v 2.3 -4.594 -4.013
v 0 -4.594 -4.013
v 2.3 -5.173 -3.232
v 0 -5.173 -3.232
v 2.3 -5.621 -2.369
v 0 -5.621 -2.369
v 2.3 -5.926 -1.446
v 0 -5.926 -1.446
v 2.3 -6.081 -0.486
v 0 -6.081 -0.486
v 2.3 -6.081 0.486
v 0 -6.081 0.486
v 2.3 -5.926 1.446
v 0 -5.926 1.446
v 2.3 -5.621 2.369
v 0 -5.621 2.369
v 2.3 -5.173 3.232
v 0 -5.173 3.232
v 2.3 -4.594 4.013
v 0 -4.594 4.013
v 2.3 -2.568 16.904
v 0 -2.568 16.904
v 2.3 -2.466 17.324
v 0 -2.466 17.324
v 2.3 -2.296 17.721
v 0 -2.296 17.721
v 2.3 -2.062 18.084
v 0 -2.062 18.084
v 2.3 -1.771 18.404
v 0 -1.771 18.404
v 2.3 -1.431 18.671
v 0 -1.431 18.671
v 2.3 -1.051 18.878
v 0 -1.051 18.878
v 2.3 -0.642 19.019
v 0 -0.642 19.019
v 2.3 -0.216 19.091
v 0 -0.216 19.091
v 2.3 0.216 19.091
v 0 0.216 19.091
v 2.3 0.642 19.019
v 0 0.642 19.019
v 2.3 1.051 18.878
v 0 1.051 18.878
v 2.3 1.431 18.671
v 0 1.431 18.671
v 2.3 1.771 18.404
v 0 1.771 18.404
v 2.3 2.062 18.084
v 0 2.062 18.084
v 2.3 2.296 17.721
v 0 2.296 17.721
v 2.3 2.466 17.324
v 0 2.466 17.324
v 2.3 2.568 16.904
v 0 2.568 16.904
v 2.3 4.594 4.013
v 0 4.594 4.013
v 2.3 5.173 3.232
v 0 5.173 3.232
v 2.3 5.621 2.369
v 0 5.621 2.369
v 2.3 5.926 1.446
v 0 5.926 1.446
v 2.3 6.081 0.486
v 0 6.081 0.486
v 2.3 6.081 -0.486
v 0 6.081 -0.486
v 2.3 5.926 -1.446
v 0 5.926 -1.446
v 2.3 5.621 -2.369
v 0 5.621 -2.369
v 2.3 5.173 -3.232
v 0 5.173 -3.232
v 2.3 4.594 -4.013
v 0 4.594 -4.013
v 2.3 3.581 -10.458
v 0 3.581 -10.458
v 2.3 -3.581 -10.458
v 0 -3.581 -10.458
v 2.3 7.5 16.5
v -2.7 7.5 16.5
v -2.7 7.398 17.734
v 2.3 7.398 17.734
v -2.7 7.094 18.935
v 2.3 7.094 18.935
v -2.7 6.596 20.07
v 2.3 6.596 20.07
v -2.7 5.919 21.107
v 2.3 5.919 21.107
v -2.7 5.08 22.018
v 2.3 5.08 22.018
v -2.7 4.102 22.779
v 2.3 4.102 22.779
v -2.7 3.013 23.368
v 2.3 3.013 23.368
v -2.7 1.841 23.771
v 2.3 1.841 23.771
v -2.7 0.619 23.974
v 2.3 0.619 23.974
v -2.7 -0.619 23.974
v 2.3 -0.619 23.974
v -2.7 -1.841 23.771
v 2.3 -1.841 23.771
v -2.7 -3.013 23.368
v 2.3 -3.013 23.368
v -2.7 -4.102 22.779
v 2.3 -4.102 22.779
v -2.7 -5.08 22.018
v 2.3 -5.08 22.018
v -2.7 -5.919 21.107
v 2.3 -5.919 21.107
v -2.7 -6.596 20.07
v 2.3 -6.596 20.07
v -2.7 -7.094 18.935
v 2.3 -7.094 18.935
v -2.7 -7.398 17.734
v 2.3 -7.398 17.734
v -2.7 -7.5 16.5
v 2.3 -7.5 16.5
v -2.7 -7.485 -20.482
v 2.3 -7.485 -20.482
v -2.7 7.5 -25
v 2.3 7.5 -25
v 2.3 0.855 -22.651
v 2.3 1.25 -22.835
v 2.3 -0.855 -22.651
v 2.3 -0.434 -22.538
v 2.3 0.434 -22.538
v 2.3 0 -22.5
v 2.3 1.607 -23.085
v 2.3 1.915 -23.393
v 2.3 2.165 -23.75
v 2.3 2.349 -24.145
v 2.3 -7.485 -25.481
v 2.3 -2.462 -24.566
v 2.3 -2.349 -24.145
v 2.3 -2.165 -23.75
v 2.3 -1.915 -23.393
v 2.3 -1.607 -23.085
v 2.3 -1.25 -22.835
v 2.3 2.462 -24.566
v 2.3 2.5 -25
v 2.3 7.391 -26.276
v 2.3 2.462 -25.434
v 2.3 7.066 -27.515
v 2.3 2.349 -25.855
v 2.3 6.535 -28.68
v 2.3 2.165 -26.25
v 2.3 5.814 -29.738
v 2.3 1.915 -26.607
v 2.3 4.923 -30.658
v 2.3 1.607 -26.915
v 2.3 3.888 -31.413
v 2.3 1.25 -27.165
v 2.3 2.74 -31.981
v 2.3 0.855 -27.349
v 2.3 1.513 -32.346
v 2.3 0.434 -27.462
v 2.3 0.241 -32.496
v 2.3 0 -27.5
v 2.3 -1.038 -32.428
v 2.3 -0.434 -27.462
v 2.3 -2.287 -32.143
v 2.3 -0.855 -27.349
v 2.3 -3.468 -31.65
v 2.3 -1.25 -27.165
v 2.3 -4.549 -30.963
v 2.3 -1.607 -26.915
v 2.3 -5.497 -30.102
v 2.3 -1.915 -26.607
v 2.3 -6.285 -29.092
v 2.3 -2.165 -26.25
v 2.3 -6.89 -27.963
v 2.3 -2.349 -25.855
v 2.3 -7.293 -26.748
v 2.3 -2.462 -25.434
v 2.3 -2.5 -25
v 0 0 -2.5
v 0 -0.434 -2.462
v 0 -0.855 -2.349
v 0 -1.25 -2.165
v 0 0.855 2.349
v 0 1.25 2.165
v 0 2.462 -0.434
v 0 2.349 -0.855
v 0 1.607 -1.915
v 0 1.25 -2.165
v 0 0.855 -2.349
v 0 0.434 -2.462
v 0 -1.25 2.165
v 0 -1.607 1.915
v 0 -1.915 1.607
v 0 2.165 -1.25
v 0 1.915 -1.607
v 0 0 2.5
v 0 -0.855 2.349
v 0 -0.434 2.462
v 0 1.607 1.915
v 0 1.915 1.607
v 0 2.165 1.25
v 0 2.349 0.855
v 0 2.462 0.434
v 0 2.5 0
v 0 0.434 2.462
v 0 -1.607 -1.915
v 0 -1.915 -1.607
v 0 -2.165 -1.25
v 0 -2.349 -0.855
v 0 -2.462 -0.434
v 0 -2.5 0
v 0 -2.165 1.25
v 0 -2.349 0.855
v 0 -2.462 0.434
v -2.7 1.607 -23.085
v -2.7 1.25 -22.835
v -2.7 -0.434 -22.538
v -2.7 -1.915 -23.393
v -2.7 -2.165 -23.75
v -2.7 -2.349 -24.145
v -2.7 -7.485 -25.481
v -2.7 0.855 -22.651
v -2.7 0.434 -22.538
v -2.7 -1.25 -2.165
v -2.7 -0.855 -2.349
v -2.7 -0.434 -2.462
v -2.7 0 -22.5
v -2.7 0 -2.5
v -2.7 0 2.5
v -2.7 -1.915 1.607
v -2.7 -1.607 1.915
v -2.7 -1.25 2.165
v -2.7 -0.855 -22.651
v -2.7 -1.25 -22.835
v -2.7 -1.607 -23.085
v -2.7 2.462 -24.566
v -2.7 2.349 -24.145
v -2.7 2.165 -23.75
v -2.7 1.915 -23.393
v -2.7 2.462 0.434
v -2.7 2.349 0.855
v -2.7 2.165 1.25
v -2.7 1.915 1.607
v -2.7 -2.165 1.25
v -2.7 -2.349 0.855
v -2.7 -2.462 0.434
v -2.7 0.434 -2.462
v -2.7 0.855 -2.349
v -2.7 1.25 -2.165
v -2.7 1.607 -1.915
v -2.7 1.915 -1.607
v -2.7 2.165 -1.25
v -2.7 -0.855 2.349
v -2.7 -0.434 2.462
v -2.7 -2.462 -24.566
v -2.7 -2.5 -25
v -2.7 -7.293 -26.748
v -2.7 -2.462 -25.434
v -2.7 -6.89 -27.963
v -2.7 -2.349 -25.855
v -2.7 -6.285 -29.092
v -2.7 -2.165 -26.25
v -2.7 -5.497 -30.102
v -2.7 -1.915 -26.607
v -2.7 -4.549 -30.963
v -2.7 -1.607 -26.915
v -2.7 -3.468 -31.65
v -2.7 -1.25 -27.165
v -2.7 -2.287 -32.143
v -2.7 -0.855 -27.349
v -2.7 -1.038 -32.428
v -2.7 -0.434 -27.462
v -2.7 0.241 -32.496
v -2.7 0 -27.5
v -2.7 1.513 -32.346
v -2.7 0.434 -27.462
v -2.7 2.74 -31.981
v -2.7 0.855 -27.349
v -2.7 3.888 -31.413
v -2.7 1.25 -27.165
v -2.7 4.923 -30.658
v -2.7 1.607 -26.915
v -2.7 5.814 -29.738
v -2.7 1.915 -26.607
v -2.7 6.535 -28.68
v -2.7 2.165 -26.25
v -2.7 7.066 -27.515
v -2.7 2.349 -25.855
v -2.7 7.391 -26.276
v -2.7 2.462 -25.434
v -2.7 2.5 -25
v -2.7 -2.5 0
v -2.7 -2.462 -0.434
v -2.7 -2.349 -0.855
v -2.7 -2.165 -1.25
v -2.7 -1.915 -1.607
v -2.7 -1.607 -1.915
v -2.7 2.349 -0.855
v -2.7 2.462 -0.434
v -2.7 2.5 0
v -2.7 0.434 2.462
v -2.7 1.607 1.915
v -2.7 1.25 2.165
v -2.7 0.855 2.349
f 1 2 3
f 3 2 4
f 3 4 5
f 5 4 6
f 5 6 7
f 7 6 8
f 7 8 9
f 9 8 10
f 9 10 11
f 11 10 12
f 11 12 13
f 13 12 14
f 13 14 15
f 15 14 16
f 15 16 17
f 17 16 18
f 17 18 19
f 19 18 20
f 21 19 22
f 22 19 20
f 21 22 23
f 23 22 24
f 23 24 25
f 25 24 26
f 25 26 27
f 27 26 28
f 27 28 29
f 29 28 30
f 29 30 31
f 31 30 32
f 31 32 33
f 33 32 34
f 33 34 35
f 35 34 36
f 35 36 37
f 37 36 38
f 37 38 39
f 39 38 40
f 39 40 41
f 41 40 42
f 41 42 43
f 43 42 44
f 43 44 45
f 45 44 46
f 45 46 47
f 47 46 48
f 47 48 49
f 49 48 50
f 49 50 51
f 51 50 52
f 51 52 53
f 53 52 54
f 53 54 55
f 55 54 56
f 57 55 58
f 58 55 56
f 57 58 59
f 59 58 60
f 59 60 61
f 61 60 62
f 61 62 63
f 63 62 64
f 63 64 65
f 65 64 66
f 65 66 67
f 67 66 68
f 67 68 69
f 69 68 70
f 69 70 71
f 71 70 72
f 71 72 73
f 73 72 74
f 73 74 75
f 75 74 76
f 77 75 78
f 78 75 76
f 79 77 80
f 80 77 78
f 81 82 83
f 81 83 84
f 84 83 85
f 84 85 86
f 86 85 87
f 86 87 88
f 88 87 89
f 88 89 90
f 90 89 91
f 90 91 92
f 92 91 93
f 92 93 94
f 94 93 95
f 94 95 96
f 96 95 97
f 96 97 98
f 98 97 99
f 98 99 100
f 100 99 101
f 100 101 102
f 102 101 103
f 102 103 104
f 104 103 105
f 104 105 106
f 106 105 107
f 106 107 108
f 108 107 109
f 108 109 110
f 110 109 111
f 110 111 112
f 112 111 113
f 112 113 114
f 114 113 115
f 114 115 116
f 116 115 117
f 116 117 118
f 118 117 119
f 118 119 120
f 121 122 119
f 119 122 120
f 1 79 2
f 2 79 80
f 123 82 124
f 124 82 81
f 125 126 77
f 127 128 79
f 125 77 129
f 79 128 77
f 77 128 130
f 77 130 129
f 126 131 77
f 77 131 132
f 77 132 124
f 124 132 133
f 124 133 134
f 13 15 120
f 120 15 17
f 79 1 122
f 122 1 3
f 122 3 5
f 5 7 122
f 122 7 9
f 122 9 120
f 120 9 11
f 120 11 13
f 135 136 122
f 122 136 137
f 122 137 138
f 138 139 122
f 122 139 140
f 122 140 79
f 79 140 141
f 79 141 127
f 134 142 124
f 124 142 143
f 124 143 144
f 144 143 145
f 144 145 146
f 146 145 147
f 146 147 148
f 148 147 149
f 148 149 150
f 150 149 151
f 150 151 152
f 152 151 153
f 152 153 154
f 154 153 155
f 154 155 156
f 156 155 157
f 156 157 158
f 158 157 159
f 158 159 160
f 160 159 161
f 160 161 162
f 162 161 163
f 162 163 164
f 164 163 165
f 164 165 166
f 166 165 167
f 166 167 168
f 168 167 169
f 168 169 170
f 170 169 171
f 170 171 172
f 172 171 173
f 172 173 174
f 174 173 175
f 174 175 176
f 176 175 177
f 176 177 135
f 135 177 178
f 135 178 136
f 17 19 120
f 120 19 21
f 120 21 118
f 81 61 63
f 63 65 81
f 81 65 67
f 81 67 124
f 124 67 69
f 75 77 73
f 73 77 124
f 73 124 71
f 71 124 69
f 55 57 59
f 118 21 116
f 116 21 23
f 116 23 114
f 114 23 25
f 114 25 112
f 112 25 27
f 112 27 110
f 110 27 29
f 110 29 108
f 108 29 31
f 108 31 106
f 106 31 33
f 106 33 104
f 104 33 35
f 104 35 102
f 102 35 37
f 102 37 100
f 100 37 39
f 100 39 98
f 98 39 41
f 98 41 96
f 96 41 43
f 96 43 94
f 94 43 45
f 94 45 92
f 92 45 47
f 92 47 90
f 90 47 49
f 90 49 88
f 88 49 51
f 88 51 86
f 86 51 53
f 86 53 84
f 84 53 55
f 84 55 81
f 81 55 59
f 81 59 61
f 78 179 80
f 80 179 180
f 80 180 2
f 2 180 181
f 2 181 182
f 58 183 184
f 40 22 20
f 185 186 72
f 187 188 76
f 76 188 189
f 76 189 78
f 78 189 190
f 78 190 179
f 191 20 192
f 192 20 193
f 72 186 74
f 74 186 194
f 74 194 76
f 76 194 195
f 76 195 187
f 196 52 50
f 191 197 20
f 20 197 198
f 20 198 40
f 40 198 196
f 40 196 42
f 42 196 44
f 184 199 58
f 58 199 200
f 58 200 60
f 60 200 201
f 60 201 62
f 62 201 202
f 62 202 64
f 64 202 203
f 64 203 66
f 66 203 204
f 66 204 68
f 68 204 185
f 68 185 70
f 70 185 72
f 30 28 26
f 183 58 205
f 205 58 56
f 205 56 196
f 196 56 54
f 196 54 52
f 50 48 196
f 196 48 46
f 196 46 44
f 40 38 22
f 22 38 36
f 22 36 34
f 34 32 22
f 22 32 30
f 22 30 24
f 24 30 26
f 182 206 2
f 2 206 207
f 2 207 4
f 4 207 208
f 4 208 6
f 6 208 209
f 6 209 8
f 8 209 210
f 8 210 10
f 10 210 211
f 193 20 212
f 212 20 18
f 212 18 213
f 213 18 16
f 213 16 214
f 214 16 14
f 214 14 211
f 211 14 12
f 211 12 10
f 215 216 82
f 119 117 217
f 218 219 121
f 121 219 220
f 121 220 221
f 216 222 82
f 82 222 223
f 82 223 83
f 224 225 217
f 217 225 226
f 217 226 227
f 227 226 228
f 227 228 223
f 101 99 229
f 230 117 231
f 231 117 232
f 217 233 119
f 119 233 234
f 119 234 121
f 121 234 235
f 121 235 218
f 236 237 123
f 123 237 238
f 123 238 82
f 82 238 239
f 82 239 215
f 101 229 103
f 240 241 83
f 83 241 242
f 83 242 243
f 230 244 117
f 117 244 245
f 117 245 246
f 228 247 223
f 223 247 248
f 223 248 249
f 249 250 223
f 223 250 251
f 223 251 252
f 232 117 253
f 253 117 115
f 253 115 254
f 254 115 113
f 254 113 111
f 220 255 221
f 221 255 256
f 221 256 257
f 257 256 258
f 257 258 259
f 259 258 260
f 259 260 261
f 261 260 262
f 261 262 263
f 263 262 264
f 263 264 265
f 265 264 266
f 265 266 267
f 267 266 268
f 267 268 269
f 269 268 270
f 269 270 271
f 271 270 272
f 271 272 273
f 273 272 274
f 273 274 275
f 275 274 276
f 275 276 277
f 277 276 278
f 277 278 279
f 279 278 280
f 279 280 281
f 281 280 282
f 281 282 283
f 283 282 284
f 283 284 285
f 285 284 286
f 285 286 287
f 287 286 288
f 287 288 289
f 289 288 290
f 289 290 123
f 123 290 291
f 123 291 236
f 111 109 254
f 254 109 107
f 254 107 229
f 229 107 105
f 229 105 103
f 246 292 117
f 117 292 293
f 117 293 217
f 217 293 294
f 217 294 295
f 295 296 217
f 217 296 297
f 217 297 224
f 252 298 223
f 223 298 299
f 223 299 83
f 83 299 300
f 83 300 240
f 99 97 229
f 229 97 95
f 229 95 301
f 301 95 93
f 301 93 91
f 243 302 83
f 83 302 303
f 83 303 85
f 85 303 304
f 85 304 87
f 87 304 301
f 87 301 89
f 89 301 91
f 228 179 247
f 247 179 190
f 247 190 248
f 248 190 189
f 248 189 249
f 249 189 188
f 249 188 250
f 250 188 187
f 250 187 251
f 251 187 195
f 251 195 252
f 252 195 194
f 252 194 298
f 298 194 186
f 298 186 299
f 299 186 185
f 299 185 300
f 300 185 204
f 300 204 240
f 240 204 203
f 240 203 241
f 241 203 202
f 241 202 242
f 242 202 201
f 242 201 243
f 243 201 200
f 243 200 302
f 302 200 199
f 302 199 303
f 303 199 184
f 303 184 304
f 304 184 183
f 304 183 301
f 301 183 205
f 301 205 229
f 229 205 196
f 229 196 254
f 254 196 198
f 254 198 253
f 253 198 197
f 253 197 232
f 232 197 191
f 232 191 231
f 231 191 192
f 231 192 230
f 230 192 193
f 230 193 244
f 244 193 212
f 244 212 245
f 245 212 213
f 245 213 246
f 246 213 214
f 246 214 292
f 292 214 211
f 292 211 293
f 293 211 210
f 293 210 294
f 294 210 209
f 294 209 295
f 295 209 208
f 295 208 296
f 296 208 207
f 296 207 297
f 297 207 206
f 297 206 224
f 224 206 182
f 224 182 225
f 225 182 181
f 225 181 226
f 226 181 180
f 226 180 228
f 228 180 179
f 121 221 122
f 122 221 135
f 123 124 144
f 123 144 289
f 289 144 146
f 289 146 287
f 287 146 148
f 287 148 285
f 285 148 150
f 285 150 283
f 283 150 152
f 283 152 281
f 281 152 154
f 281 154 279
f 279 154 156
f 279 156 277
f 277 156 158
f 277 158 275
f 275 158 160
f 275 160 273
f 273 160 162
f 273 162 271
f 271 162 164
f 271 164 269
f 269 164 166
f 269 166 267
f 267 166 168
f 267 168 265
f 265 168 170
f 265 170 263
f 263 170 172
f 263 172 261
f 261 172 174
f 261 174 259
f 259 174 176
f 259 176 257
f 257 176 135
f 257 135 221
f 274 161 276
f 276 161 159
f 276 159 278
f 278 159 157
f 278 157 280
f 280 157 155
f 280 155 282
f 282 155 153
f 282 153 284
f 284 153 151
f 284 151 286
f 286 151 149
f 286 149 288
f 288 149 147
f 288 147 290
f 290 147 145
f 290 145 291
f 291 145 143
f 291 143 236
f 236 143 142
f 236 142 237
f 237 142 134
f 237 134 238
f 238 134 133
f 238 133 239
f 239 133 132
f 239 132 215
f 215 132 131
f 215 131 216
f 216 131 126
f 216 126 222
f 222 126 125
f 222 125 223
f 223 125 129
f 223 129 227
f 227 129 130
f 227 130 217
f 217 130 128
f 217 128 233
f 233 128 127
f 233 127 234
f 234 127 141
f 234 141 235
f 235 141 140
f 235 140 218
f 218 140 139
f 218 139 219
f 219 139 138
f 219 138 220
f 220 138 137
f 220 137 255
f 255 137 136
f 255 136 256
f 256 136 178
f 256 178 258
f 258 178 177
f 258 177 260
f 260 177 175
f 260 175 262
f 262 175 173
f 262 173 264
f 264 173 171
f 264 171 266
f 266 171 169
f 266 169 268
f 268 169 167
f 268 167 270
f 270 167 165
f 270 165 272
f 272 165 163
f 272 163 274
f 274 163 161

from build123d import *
from build123d.topology import SkipClean

# Parameters (mm, degrees)
SKETCH1_R           = 2.5
BOSS_EXTRUDE1_DEPTH = 2.3
BOSS_EXTRUDE2_START = 2.7
SKETCH2_R           = 2.5
BOSS_EXTRUDE2_DEPTH = 2.7
SKETCH3_R           = 2.5
CUT_EXTRUDE1_DEPTH  = 10
BOSS_EXTRUDE3_START = -5
SKETCH4_R           = 2.5
BOSS_EXTRUDE3_DEPTH = 5
CUT_EXTRUDE2_DEPTH  = 5


with BuildPart() as part:
    # Sketch1 → Boss-Extrude1 (new body)
    with BuildSketch(Plane(origin=(0, 0, 0), x_dir=(0, 0, -1), z_dir=(1, 0, 0))):
        with BuildLine():
            Line((-16.5, -7.5), (20.481500629, -7.48452785))
            ThreePointArc((20.481500629, -7.48452785), (27.496130965, 0.240874575), (20, 7.5))
            Line((20, 7.5), (-16.5, 7.5))
            ThreePointArc((-16.5, 7.5), (-24, 0), (-16.5, -7.5))
        make_face()
        with BuildLine():
            Line((4.012796555, 4.594285996), (10.45821766, 3.581381658))
            Line((10.45821766, 3.581381658), (10.45821766, 0))
            Line((10.45821766, 0), (10.45821766, -3.581381658))
            Line((10.45821766, -3.581381658), (4.012796555, -4.594285996))
            ThreePointArc((4.012796555, -4.594285996), (0, -6.1), (-4.012796555, -4.594285996))
            Line((-4.012796555, -4.594285996), (-9.954017871, -3.660617157))
            Line((-9.954017871, -3.660617157), (-16.903638766, -2.568477321))
            ThreePointArc((-16.903638766, -2.568477321), (-19.1, 0), (-16.903638766, 2.568477321))
            Line((-16.903638766, 2.568477321), (-4.012796555, 4.594285996))
            ThreePointArc((-4.012796555, 4.594285996), (0, 6.1), (4.012796555, 4.594285996))
        make_face(mode=Mode.SUBTRACT)
        with Locations((20, 0)):
            Circle(SKETCH1_R, mode=Mode.SUBTRACT)
    extrude(amount=BOSS_EXTRUDE1_DEPTH)

    # Sketch2 → Boss-Extrude2 (add)
    with SkipClean():  # the faces are left unmerged after this step: merging them gives an invalid solid
        with BuildSketch(Plane.ZY.offset(BOSS_EXTRUDE2_START)):
            with BuildLine():
                Line((16.5, 7.5), (-20, 7.5))
                ThreePointArc((-20, 7.5), (-27.496130965, 0.240874575), (-20.481500629, -7.48452785))
                Line((-20.481500629, -7.48452785), (16.5, -7.5))
                ThreePointArc((16.5, -7.5), (24, 0), (16.5, 7.5))
            make_face()
            with Locations((-20, 0)):
                Circle(SKETCH2_R, mode=Mode.SUBTRACT)
        extrude(amount=-BOSS_EXTRUDE2_DEPTH)

    # Sketch3 → Cut-Extrude1 (cut)
    with SkipClean():  # the faces are left unmerged after this step: merging them gives an invalid solid
        with BuildSketch(Plane(origin=(0, 0, 0), x_dir=(0, 0, -1), z_dir=(1, 0, 0))):
            Circle(SKETCH3_R)
        extrude(amount=-CUT_EXTRUDE1_DEPTH, mode=Mode.SUBTRACT)

    # Sketch4 → Boss-Extrude3 (add)
    with BuildSketch(Plane(origin=(2.3, 0, 0), x_dir=(0, 0, -1), z_dir=(1, 0, 0)).offset(BOSS_EXTRUDE3_START)):
        with BuildLine():
            ThreePointArc((25.481500629, -7.48452785), (32.496130965, 0.240874575), (25, 7.5))
            Line((25, 7.5), (20, 7.5))
            ThreePointArc((20, 7.5), (27.496130965, 0.240874575), (20.481500629, -7.48452785))
            Line((20.481500629, -7.48452785), (25.481500629, -7.48452785))
        make_face()
        with Locations((20, 0)):
            Circle(SKETCH4_R)
    extrude(amount=BOSS_EXTRUDE3_DEPTH)

    # Sketch4<3> → Cut-Extrude2 (cut)
    with BuildSketch(Plane(origin=(2.3, 0, 0), x_dir=(0, 0, -1), z_dir=(1, 0, 0))):
        with BuildLine():
            ThreePointArc((22.5, 0), (25, -2.5), (27.5, 0))
            ThreePointArc((27.5, 0), (25, 2.5), (22.5, 0))
        make_face()
    extrude(amount=-CUT_EXTRUDE2_DEPTH, mode=Mode.SUBTRACT)


solid = part.part
